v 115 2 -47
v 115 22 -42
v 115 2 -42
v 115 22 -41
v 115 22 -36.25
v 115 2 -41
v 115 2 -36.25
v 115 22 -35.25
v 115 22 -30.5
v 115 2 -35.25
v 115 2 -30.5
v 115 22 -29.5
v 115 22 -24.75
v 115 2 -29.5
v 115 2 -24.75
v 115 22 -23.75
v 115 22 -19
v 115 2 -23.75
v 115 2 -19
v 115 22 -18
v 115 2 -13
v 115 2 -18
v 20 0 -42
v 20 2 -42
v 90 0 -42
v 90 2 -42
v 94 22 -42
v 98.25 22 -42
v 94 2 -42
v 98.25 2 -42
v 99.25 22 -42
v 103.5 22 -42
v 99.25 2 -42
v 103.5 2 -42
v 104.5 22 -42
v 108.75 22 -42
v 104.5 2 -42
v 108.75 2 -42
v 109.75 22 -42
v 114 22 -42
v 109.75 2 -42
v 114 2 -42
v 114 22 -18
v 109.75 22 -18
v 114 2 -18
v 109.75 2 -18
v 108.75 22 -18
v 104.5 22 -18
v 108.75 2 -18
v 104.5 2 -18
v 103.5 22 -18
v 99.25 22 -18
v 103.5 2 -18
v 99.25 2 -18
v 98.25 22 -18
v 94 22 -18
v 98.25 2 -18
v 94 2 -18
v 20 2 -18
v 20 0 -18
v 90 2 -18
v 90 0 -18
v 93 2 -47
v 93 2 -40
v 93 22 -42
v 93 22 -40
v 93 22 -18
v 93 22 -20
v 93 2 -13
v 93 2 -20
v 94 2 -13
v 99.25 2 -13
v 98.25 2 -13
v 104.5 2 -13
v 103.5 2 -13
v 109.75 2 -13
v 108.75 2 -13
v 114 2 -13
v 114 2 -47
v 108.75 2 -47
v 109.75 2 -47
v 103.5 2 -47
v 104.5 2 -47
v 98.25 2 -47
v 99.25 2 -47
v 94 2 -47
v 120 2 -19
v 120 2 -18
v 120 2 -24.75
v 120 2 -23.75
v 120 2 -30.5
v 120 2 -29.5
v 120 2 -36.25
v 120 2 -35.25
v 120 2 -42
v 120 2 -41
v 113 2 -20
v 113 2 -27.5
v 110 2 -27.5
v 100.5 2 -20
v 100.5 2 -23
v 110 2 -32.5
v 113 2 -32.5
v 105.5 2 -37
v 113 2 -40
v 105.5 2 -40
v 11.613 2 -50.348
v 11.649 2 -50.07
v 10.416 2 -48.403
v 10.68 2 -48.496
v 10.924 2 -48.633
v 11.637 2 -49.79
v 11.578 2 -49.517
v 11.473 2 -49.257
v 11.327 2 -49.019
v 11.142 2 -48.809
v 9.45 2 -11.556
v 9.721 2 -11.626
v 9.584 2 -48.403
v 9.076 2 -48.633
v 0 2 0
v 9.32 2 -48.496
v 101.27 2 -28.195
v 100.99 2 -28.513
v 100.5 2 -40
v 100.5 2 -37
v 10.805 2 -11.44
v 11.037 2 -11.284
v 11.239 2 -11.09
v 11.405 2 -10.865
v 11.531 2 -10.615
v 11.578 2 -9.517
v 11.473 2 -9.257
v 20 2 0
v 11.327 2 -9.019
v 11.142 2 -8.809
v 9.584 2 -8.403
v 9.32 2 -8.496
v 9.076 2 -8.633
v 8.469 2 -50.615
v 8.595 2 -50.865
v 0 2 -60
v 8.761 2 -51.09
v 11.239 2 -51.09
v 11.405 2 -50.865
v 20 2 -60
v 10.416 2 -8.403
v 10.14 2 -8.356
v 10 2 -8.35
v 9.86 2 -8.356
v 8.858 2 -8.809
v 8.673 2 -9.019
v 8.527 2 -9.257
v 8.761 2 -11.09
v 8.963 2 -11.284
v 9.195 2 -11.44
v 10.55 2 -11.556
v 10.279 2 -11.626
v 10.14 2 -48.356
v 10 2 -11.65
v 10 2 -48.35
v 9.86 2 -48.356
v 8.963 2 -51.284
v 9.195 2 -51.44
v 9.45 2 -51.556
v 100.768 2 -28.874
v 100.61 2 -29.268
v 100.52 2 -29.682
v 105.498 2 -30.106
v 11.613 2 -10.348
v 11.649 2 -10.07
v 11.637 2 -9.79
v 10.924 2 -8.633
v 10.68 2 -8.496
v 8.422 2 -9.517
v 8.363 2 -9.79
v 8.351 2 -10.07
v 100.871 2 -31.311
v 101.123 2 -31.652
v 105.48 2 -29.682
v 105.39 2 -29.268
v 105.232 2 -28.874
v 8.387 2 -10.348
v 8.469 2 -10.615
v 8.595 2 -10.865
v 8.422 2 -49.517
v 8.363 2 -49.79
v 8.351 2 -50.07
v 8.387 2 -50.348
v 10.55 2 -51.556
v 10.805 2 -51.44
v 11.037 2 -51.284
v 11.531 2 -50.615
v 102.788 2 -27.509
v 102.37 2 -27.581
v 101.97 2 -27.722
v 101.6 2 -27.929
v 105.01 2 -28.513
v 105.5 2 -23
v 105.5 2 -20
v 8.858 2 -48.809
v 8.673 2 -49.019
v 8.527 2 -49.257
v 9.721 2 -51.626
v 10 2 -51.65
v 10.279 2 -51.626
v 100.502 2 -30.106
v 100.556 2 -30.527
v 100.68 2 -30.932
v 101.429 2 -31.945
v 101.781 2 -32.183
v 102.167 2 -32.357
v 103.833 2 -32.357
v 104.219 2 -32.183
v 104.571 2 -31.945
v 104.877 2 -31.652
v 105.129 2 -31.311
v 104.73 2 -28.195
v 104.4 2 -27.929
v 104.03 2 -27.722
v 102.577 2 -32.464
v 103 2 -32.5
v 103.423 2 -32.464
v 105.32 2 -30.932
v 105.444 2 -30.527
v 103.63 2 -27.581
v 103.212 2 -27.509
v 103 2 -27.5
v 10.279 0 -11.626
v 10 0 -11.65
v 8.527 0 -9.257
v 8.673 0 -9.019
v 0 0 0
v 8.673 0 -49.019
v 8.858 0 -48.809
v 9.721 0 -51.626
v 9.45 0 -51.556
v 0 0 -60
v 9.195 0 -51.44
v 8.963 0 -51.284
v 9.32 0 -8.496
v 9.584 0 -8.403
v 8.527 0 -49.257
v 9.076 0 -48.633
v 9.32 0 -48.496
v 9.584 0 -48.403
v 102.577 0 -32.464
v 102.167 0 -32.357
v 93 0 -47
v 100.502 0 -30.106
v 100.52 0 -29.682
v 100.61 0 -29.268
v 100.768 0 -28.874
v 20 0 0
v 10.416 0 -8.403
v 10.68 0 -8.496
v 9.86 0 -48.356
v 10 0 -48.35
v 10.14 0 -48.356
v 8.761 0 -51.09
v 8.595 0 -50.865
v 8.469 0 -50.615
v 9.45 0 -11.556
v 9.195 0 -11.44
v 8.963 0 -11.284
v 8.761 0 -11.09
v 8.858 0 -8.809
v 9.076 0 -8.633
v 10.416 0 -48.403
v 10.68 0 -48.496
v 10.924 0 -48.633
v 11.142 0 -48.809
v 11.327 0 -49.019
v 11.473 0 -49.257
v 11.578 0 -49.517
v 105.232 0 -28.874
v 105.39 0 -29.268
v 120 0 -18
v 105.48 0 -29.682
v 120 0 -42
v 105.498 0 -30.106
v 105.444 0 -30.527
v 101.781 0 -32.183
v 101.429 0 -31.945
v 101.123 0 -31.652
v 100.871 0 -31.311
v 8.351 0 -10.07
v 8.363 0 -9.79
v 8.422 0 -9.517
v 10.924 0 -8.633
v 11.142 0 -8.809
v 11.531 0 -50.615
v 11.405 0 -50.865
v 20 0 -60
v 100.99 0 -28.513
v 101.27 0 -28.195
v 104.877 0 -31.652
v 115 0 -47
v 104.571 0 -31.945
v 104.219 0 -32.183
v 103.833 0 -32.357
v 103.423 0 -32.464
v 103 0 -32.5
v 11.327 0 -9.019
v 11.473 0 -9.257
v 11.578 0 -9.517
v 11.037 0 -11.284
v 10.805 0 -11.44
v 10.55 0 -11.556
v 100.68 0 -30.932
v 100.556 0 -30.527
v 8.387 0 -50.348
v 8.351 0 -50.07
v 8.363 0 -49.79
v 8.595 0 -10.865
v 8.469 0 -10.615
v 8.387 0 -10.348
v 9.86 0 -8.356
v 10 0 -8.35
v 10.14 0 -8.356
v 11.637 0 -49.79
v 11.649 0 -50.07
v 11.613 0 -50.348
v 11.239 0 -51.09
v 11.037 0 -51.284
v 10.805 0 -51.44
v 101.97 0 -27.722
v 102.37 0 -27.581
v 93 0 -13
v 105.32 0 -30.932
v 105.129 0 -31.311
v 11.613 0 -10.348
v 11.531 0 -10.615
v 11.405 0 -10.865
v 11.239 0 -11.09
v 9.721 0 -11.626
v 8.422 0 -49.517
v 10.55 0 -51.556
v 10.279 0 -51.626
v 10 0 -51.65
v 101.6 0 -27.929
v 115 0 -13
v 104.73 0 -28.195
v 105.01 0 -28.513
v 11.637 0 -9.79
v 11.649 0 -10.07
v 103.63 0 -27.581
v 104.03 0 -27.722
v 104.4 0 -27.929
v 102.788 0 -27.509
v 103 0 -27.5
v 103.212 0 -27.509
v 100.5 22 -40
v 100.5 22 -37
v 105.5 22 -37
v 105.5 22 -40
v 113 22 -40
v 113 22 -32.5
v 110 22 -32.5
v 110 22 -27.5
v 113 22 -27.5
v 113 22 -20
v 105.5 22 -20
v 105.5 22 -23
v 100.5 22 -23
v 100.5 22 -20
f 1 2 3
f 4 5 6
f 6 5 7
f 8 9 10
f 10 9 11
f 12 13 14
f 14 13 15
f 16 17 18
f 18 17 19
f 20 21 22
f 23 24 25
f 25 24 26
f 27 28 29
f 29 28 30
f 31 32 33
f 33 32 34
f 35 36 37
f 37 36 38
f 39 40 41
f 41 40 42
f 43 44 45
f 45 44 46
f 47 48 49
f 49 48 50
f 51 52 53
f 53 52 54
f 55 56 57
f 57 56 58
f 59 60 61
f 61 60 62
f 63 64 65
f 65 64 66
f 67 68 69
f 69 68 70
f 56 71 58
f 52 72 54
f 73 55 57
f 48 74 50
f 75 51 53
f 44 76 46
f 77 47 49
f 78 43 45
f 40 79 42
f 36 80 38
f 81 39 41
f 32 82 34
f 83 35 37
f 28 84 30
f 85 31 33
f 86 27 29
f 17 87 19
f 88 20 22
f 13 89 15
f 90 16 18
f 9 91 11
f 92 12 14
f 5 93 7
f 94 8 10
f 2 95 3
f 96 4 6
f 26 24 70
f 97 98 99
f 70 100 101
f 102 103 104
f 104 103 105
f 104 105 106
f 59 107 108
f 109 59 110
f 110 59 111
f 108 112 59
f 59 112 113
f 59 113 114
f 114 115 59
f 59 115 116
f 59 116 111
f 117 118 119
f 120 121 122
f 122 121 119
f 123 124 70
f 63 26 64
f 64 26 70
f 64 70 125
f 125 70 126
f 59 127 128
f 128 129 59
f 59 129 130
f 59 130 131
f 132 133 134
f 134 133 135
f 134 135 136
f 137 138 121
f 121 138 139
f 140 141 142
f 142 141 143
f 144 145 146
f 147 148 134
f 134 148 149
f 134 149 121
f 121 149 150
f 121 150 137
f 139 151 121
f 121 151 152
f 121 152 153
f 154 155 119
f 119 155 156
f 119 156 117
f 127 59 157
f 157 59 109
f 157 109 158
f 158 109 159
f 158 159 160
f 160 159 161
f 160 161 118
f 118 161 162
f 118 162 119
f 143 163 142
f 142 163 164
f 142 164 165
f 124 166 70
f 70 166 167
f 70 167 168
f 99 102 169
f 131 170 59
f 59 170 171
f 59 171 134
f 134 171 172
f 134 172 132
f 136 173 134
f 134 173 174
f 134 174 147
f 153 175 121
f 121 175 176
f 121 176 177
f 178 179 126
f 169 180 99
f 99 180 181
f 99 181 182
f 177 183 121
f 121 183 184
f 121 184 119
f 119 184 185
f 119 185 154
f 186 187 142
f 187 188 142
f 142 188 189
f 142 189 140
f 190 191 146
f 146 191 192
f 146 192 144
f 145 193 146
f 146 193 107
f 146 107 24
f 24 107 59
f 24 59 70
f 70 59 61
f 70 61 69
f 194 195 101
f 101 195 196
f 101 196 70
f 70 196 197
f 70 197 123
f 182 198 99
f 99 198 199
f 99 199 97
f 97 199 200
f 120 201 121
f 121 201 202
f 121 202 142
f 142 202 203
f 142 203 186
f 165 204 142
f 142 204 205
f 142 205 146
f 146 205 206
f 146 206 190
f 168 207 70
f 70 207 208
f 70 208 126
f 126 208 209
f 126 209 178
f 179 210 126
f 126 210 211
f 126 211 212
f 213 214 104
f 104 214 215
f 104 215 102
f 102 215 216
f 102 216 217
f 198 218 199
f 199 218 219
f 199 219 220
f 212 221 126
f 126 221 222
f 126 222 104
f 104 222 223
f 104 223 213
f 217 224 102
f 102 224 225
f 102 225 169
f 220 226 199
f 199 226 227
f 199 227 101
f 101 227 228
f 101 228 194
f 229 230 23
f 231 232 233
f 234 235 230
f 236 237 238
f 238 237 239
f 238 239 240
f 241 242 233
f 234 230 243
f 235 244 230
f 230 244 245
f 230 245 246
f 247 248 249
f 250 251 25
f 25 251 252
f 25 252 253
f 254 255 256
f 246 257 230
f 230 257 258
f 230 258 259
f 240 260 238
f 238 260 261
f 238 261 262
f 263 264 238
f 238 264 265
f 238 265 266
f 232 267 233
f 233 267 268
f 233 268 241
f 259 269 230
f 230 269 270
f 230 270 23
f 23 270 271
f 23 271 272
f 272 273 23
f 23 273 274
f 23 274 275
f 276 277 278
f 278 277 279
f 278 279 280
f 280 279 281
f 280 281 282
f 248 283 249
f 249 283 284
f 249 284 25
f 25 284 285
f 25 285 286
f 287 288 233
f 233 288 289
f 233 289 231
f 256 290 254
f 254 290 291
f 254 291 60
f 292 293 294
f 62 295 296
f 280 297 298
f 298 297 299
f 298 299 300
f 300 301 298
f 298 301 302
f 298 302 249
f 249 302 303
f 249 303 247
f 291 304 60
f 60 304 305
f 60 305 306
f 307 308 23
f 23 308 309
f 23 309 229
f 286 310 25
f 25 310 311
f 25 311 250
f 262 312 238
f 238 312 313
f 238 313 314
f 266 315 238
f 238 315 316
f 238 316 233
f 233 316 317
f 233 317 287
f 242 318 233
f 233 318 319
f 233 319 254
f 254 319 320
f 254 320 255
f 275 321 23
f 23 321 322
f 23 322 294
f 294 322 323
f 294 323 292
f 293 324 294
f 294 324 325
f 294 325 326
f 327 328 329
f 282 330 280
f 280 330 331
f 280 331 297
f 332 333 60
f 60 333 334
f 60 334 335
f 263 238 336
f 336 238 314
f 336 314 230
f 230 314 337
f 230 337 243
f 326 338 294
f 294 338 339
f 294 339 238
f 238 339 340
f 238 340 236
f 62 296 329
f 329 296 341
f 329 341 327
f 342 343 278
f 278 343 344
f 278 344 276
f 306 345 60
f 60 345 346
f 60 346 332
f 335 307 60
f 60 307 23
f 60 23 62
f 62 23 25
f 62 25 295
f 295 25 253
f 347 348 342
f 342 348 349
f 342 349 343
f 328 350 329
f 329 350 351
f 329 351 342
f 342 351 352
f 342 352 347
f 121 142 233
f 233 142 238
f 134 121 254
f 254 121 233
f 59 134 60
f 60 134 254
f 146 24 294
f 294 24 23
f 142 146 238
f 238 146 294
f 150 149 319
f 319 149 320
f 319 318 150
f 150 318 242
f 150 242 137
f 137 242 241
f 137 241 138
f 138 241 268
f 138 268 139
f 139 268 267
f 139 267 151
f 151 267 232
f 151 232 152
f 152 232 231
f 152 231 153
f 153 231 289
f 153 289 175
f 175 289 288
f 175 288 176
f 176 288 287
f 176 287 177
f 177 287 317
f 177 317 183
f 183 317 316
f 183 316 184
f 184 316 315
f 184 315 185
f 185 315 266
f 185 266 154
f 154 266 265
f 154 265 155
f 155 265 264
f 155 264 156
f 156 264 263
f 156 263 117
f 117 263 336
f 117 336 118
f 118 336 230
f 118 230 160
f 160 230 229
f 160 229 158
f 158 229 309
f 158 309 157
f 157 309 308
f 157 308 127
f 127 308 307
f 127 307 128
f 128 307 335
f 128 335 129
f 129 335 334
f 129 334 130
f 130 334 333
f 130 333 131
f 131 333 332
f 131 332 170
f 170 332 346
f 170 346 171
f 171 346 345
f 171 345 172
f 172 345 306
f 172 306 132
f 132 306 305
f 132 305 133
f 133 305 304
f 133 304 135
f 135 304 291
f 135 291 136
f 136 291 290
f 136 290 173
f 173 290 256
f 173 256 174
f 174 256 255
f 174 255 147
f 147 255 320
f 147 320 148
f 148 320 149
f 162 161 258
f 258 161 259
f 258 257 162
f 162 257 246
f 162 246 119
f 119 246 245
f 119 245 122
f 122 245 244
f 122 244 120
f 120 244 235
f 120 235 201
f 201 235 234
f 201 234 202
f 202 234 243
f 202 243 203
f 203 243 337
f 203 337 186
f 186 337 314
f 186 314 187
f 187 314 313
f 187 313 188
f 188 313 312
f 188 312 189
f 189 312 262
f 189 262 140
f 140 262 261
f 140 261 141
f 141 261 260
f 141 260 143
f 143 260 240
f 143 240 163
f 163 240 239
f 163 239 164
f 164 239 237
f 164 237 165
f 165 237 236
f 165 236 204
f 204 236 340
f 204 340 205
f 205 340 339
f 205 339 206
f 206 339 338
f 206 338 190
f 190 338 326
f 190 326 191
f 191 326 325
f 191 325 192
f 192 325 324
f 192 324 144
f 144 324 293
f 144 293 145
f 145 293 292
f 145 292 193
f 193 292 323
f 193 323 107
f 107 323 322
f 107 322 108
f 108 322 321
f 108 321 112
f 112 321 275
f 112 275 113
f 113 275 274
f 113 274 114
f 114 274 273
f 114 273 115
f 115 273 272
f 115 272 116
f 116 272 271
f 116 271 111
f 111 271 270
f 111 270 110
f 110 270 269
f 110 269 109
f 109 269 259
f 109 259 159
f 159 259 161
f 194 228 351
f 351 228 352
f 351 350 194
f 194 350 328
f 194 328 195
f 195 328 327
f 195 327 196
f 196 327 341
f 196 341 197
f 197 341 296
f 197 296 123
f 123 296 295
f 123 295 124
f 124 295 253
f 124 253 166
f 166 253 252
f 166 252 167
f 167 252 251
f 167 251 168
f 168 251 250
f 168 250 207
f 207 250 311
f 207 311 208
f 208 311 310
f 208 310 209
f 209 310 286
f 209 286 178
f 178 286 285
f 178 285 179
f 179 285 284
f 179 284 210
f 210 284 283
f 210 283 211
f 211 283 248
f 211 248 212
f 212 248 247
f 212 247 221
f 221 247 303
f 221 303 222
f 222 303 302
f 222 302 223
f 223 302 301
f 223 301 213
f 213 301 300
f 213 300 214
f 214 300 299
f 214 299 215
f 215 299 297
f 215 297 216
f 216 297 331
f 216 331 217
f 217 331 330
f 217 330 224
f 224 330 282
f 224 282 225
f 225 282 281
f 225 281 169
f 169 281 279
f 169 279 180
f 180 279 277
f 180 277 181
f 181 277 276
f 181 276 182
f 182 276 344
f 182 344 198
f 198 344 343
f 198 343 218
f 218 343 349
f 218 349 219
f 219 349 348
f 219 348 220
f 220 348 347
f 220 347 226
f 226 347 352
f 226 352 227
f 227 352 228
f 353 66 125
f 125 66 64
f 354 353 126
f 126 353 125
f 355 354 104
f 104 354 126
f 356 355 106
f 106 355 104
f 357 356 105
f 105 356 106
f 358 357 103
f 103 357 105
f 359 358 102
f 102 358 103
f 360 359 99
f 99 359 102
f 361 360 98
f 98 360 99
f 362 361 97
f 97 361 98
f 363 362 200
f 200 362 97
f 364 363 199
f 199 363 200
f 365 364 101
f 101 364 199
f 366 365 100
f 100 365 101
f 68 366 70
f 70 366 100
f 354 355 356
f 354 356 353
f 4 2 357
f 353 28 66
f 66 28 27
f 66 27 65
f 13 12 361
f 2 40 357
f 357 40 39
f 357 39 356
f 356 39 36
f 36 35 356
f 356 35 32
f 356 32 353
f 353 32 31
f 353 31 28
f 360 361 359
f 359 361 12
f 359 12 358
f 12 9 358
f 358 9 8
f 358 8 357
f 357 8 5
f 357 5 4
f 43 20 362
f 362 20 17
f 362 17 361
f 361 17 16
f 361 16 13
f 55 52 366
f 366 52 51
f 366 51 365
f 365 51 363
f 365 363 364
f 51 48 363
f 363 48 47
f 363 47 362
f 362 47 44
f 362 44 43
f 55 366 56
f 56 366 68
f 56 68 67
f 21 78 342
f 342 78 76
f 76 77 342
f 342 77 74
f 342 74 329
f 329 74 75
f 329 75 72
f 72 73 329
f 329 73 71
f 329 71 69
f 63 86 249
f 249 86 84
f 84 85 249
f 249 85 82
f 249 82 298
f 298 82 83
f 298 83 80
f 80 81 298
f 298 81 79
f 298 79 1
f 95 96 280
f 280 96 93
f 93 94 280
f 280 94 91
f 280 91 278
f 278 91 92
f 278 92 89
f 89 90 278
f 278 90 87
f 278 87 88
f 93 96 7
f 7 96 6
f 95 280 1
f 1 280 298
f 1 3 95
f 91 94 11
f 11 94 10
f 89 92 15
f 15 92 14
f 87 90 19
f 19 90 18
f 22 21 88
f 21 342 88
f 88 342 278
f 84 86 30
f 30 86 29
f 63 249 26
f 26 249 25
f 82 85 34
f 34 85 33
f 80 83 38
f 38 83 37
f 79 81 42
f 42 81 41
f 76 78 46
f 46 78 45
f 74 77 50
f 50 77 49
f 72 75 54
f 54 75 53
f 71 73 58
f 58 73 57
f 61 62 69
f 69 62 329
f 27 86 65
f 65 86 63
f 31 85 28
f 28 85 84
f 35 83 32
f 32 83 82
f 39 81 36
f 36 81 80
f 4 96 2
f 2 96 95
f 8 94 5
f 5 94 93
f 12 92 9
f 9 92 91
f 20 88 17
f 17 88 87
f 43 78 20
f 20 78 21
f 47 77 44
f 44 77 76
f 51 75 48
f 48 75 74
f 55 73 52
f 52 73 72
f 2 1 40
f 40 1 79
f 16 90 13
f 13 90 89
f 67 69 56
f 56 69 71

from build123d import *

# Parameters (mm, degrees)
SKETCH1_R           = 1.65
SKETCH1_R_2         = 2.5
BOSS_EXTRUDE1_DEPTH = 2
BOSS_EXTRUDE2_DEPTH = 20
SKETCH4_W           = 1
SKETCH4_H           = 5
BOSS_EXTRUDE3_DEPTH = 22
SKETCH5_W           = 5
SKETCH5_H           = 1
BOSS_EXTRUDE4_DEPTH = 22
BOSS_EXTRUDE5_DEPTH = 2
CHAMFER1_SIZE       = 5
CHAMFER1_SIZE2      = 20


with BuildPart() as part:
    # Sketch1 → Boss-Extrude1 (new body)
    with BuildSketch(Plane(origin=(0, 0, 0), x_dir=(1, 0, 0), z_dir=(0, 1, 0))):
        Polygon((20, 18), (115, 18), (115, 42), (20, 42), (20, 60), (0, 60), (0, 0), (20, 0), align=None)
        with Locations(Location((10, 10, 0), (0, 0, 270))):
            Circle(SKETCH1_R, mode=Mode.SUBTRACT)
        with Locations(Location((10, 50, 0), (0, 0, 270))):
            Circle(SKETCH1_R, mode=Mode.SUBTRACT)
        with Locations(Location((103, 30, 0), (0, 0, 270))):
            Circle(SKETCH1_R_2, mode=Mode.SUBTRACT)
    extrude(amount=BOSS_EXTRUDE1_DEPTH)

    # Sketch2 → Boss-Extrude2 (add)
    with BuildSketch(Plane(origin=(0, 2, 0), x_dir=(1, 0, 0), z_dir=(0, 1, 0))):
        Polygon((115, 42), (93, 42), (93, 40), (100.5, 40), (100.5, 37), (105.5, 37), (105.5, 40), (113, 40), (113, 32.5), (110, 32.5), (110, 27.5), (113, 27.5), (113, 20), (105.5, 20), (105.5, 23), (100.5, 23), (100.5, 20), (93, 20), (93, 18), (115, 18), align=None)
    extrude(amount=BOSS_EXTRUDE2_DEPTH)

    # Sketch4 → Boss-Extrude3 (add)
    with BuildSketch(Plane(origin=(0, 0, 0), x_dir=(1, 0, 0), z_dir=(0, 1, 0))):
        with Locations((98.75, 15.5)):
            Rectangle(SKETCH4_W, SKETCH4_H)
        with Locations((93.5, 15.5)):
            Rectangle(SKETCH4_W, SKETCH4_H)
        with Locations((104, 15.5)):
            Rectangle(SKETCH4_W, SKETCH4_H)
        with Locations((109.25, 15.5)):
            Rectangle(SKETCH4_W, SKETCH4_H)
        with Locations((114.5, 15.5)):
            Rectangle(SKETCH4_W, SKETCH4_H)
        with Locations((114.5, 44.5)):
            Rectangle(SKETCH4_W, SKETCH4_H)
        with Locations((109.25, 44.5)):
            Rectangle(SKETCH4_W, SKETCH4_H)
        with Locations((104, 44.5)):
            Rectangle(SKETCH4_W, SKETCH4_H)
        with Locations((98.75, 44.5)):
            Rectangle(SKETCH4_W, SKETCH4_H)
        with Locations((93.5, 44.5)):
            Rectangle(SKETCH4_W, SKETCH4_H)
    extrude(amount=BOSS_EXTRUDE3_DEPTH)

    # Sketch5 → Boss-Extrude4 (add)
    with BuildSketch(Plane(origin=(0, 0, 0), x_dir=(1, 0, 0), z_dir=(0, 1, 0))):
        with Locations((117.5, 18.5)):
            Rectangle(SKETCH5_W, SKETCH5_H)
        with Locations((117.5, 24.25)):
            Rectangle(SKETCH5_W, SKETCH5_H)
        with Locations((117.5, 30)):
            Rectangle(SKETCH5_W, SKETCH5_H)
        with Locations((117.5, 35.75)):
            Rectangle(SKETCH5_W, SKETCH5_H)
        with Locations((117.5, 41.5)):
            Rectangle(SKETCH5_W, SKETCH5_H)
    extrude(amount=BOSS_EXTRUDE4_DEPTH)

    # Sketch6 → Boss-Extrude5 (add)
    with BuildSketch(Plane(origin=(0, 0, 0), x_dir=(1, 0, 0), z_dir=(0, 1, 0))):
        Polygon((90, 42), (115, 42), (115, 18), (90, 18), (93, 13), (115, 13), (120, 18), (120, 42), (115, 47), (93, 47), align=None)
    extrude(amount=BOSS_EXTRUDE5_DEPTH)

    # Chamfer1
    chamfer1_edges = [part.edges().sort_by_distance(p)[0] for p in [
        (93.5, 22, -47),
        (98.75, 22, -47),
        (104, 22, -47),
        (109.25, 22, -47),
        (120, 22, -41.5),
        (120, 22, -35.75),
        (120, 22, -30),
        (120, 22, -18.5),
        (114.5, 22, -13),
        (109.25, 22, -13),
        (104, 22, -13),
        (98.75, 22, -13),
        (114.5, 22, -47),
        (120, 22, -24.25),
        (93.5, 22, -13),
    ]]
    chamfer1_side = [part.faces().sort_by_distance(p)[0] for p in [
        (93.565834133, 22, -15.5),
    ]]
    chamfer(chamfer1_edges, length=CHAMFER1_SIZE, length2=CHAMFER1_SIZE2, reference=chamfer1_side[0])


solid = part.part
